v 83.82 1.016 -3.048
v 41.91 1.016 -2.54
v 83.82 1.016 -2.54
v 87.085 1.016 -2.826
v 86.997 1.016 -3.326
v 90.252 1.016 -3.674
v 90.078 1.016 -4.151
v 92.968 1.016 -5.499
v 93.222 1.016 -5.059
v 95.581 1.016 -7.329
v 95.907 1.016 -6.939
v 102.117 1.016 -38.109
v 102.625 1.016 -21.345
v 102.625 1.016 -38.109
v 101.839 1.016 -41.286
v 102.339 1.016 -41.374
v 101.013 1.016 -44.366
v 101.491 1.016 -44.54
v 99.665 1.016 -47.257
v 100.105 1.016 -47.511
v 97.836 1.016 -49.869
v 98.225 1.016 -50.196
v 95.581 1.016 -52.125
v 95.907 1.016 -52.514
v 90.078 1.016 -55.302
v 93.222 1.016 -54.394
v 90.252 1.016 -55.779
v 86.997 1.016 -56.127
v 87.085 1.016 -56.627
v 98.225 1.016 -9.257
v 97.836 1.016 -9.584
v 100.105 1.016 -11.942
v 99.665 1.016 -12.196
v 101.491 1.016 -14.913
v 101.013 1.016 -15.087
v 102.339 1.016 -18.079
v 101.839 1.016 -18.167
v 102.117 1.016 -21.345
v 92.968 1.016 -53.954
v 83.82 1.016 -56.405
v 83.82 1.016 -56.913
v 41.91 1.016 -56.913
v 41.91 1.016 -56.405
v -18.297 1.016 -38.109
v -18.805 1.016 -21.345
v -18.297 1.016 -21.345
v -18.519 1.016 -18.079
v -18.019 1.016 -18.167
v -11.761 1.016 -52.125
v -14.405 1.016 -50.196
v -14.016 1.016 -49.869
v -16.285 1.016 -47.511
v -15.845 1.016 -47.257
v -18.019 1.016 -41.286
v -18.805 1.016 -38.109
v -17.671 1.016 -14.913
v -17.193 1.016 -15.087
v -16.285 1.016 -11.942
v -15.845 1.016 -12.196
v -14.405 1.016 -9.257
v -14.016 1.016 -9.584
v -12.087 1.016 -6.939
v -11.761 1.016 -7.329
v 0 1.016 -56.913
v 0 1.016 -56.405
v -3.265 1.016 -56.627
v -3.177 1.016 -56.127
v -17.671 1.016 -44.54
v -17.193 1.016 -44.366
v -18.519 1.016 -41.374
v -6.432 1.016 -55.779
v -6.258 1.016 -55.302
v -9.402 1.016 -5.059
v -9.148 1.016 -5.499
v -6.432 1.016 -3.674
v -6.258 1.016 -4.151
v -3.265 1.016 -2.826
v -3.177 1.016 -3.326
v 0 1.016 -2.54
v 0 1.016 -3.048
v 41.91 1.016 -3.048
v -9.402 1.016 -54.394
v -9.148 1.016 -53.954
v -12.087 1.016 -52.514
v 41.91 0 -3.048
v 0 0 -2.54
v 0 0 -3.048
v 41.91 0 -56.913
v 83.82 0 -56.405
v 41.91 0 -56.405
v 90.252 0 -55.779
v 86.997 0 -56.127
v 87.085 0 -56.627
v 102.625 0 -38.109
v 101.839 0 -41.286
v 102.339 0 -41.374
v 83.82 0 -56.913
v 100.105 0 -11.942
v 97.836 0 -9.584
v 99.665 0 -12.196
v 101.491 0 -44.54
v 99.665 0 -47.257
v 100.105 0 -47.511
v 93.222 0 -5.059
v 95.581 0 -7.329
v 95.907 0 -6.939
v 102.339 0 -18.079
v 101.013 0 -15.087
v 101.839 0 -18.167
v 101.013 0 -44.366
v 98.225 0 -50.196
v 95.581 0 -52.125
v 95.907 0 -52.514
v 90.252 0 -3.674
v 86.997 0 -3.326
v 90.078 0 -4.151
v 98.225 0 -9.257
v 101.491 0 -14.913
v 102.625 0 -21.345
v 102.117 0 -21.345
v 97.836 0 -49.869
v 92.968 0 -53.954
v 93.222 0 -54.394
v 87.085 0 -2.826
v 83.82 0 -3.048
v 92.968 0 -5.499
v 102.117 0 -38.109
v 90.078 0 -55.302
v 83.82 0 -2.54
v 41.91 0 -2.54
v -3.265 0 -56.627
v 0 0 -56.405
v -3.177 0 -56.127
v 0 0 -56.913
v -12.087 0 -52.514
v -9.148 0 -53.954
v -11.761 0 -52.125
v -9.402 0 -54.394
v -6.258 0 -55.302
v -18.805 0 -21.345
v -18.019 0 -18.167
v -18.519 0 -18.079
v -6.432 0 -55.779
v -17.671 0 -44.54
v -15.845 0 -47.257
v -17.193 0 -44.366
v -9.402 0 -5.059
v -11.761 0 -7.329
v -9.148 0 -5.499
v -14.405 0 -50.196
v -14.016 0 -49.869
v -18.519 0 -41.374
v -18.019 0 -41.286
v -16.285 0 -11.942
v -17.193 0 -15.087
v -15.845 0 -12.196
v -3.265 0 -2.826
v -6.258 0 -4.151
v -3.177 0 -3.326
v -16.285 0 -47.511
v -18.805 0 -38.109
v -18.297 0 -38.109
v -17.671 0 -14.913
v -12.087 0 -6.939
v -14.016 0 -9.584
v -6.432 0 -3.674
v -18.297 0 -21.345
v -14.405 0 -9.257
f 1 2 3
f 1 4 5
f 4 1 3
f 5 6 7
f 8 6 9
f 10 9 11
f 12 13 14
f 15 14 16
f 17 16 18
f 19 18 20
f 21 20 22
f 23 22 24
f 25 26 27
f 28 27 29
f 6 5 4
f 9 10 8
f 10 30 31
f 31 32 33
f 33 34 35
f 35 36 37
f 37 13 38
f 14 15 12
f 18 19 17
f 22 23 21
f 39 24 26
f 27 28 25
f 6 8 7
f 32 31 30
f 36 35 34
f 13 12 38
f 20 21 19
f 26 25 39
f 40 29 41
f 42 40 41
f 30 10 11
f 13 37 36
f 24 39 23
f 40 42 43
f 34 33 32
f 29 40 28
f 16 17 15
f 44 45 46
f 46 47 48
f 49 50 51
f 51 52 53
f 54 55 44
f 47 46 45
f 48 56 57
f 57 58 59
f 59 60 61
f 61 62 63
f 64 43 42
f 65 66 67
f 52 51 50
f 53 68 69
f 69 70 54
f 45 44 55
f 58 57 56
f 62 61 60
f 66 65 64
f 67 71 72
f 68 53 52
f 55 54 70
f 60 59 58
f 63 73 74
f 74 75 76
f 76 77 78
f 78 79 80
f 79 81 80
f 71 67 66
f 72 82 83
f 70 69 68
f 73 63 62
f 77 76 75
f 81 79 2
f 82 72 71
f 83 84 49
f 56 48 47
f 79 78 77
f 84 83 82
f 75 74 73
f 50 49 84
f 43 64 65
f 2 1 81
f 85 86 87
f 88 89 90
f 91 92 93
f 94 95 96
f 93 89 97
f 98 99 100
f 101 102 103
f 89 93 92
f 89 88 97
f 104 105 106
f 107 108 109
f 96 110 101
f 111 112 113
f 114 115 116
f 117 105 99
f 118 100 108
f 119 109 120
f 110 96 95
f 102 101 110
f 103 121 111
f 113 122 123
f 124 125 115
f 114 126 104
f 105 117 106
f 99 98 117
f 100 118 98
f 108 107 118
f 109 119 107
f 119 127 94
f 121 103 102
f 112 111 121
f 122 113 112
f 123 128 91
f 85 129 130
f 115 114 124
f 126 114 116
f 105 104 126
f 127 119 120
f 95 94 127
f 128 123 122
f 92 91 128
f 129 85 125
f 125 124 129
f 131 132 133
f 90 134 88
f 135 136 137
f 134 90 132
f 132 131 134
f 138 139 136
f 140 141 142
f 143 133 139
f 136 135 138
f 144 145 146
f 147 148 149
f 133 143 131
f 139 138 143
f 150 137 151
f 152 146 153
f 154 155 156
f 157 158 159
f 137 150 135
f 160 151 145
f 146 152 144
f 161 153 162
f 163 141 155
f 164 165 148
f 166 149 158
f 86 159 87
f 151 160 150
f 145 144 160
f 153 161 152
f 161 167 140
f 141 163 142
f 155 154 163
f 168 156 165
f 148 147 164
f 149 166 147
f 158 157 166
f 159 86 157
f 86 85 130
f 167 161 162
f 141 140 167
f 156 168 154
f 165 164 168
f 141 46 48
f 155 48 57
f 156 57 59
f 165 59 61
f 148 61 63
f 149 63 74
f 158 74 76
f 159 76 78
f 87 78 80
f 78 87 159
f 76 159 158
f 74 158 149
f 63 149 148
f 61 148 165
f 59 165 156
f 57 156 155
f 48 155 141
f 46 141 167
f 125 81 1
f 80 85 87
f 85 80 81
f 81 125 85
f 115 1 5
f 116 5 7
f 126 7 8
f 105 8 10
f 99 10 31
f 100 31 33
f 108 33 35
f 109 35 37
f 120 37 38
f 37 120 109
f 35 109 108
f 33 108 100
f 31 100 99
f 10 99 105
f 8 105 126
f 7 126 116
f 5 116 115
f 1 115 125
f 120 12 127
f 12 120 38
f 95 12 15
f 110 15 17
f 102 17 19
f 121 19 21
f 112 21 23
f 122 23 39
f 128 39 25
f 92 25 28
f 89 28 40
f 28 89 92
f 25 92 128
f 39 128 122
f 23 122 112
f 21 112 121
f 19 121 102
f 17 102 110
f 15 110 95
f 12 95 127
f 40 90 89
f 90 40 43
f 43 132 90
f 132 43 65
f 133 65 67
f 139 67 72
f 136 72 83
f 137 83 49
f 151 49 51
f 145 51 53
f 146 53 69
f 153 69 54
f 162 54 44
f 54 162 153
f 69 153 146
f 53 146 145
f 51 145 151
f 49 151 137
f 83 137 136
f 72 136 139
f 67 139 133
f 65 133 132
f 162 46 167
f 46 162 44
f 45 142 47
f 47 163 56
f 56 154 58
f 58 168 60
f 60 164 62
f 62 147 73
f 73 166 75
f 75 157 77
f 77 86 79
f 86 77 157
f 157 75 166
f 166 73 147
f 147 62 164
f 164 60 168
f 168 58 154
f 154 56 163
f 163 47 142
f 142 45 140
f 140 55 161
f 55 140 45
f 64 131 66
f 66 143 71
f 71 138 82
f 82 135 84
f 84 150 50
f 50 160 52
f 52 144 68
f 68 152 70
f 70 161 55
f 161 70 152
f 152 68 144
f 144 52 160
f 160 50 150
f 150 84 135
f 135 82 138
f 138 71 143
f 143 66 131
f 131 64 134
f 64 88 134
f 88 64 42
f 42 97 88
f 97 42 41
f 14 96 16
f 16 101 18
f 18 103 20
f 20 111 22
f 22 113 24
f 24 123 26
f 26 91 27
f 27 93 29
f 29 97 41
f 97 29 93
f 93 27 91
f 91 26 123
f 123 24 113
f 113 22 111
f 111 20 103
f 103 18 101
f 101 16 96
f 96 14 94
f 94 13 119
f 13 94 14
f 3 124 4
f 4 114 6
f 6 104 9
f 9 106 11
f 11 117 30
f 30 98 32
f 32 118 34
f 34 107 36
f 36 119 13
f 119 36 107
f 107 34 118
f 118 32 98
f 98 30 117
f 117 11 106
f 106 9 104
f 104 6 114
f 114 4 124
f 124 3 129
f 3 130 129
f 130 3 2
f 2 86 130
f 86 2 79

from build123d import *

# Parameters (mm, degrees)
BOSS_EXTRUDE1_DEPTH = 1.016
CUT_EXTRUDE7_DEPTH  = 2.54


with BuildPart() as part:
    # Sketch1 → Boss-Extrude1 (new body)
    with BuildSketch(Plane(origin=(0, 0, 0), x_dir=(1, 0, 0), z_dir=(0, 1, 0))):
        with BuildLine():
            Line((0, 0), (83.82, 0))
            ThreePointArc((83.82, 0), (98.912902724, 6.251685004), (105.164587728, 21.344587728))
            Line((105.164587728, 21.344587728), (105.164587728, 38.108587728))
            ThreePointArc((105.164587728, 38.108587728), (98.912902724, 53.201490452), (83.82, 59.453175456))
            Line((83.82, 59.453175456), (0, 59.453175456))
            ThreePointArc((0, 59.453175456), (-15.092902724, 53.201490452), (-21.344587728, 38.108587728))
            Line((-21.344587728, 38.108587728), (-21.344587728, 21.344587728))
            ThreePointArc((-21.344587728, 21.344587728), (-15.092902724, 6.251685004), (0, 0))
        make_face()
        with BuildLine():
            Line((0, 3.048), (83.82, 3.048))
            ThreePointArc((83.82, 3.048), (96.757641255, 8.406946473), (102.116587728, 21.344587728))
            Line((102.116587728, 21.344587728), (102.116587728, 38.108587728))
            ThreePointArc((102.116587728, 38.108587728), (96.757641255, 51.046228983), (83.82, 56.405175456))
            Line((83.82, 56.405175456), (0, 56.405175456))
            ThreePointArc((0, 56.405175456), (-12.937641255, 51.046228983), (-18.296587728, 38.108587728))
            Line((-18.296587728, 38.108587728), (-18.296587728, 21.344587728))
            ThreePointArc((-18.296587728, 21.344587728), (-12.937641255, 8.406946473), (0, 3.048))
        make_face(mode=Mode.SUBTRACT)
    extrude(amount=BOSS_EXTRUDE1_DEPTH)

    # Sketch6 → Cut-Extrude7 (cut)
    with BuildSketch(Plane(origin=(0, 1.016, 0), x_dir=(1, 0, 0), z_dir=(0, 1, 0))):
        with BuildLine():
            Line((0, 0), (83.82, 0))
            ThreePointArc((83.82, 0), (98.912902724, 6.251685004), (105.164587728, 21.344587728))
            Line((105.164587728, 21.344587728), (105.164587728, 38.108587728))
            ThreePointArc((105.164587728, 38.108587728), (98.912902724, 53.201490452), (83.82, 59.453175456))
            Line((83.82, 59.453175456), (0, 59.453175456))
            ThreePointArc((0, 59.453175456), (-15.092902724, 53.201490452), (-21.344587728, 38.108587728))
            Line((-21.344587728, 38.108587728), (-21.344587728, 21.344587728))
            ThreePointArc((-21.344587728, 21.344587728), (-15.092902724, 6.251685004), (0, 0))
        make_face()
        with BuildLine():
            Line((0, 2.54), (83.82, 2.54))
            ThreePointArc((83.82, 2.54), (97.1168515, 8.047736228), (102.624587728, 21.344587728))
            Line((102.624587728, 21.344587728), (102.624587728, 38.108587728))
            ThreePointArc((102.624587728, 38.108587728), (97.1168515, 51.405439228), (83.82, 56.913175456))
            Line((83.82, 56.913175456), (0, 56.913175456))
            ThreePointArc((0, 56.913175456), (-13.2968515, 51.405439228), (-18.804587728, 38.108587728))
            Line((-18.804587728, 38.108587728), (-18.804587728, 21.344587728))
            ThreePointArc((-18.804587728, 21.344587728), (-13.2968515, 8.047736228), (0, 2.54))
        make_face(mode=Mode.SUBTRACT)
    extrude(amount=-CUT_EXTRUDE7_DEPTH, mode=Mode.SUBTRACT)


solid = part.part
